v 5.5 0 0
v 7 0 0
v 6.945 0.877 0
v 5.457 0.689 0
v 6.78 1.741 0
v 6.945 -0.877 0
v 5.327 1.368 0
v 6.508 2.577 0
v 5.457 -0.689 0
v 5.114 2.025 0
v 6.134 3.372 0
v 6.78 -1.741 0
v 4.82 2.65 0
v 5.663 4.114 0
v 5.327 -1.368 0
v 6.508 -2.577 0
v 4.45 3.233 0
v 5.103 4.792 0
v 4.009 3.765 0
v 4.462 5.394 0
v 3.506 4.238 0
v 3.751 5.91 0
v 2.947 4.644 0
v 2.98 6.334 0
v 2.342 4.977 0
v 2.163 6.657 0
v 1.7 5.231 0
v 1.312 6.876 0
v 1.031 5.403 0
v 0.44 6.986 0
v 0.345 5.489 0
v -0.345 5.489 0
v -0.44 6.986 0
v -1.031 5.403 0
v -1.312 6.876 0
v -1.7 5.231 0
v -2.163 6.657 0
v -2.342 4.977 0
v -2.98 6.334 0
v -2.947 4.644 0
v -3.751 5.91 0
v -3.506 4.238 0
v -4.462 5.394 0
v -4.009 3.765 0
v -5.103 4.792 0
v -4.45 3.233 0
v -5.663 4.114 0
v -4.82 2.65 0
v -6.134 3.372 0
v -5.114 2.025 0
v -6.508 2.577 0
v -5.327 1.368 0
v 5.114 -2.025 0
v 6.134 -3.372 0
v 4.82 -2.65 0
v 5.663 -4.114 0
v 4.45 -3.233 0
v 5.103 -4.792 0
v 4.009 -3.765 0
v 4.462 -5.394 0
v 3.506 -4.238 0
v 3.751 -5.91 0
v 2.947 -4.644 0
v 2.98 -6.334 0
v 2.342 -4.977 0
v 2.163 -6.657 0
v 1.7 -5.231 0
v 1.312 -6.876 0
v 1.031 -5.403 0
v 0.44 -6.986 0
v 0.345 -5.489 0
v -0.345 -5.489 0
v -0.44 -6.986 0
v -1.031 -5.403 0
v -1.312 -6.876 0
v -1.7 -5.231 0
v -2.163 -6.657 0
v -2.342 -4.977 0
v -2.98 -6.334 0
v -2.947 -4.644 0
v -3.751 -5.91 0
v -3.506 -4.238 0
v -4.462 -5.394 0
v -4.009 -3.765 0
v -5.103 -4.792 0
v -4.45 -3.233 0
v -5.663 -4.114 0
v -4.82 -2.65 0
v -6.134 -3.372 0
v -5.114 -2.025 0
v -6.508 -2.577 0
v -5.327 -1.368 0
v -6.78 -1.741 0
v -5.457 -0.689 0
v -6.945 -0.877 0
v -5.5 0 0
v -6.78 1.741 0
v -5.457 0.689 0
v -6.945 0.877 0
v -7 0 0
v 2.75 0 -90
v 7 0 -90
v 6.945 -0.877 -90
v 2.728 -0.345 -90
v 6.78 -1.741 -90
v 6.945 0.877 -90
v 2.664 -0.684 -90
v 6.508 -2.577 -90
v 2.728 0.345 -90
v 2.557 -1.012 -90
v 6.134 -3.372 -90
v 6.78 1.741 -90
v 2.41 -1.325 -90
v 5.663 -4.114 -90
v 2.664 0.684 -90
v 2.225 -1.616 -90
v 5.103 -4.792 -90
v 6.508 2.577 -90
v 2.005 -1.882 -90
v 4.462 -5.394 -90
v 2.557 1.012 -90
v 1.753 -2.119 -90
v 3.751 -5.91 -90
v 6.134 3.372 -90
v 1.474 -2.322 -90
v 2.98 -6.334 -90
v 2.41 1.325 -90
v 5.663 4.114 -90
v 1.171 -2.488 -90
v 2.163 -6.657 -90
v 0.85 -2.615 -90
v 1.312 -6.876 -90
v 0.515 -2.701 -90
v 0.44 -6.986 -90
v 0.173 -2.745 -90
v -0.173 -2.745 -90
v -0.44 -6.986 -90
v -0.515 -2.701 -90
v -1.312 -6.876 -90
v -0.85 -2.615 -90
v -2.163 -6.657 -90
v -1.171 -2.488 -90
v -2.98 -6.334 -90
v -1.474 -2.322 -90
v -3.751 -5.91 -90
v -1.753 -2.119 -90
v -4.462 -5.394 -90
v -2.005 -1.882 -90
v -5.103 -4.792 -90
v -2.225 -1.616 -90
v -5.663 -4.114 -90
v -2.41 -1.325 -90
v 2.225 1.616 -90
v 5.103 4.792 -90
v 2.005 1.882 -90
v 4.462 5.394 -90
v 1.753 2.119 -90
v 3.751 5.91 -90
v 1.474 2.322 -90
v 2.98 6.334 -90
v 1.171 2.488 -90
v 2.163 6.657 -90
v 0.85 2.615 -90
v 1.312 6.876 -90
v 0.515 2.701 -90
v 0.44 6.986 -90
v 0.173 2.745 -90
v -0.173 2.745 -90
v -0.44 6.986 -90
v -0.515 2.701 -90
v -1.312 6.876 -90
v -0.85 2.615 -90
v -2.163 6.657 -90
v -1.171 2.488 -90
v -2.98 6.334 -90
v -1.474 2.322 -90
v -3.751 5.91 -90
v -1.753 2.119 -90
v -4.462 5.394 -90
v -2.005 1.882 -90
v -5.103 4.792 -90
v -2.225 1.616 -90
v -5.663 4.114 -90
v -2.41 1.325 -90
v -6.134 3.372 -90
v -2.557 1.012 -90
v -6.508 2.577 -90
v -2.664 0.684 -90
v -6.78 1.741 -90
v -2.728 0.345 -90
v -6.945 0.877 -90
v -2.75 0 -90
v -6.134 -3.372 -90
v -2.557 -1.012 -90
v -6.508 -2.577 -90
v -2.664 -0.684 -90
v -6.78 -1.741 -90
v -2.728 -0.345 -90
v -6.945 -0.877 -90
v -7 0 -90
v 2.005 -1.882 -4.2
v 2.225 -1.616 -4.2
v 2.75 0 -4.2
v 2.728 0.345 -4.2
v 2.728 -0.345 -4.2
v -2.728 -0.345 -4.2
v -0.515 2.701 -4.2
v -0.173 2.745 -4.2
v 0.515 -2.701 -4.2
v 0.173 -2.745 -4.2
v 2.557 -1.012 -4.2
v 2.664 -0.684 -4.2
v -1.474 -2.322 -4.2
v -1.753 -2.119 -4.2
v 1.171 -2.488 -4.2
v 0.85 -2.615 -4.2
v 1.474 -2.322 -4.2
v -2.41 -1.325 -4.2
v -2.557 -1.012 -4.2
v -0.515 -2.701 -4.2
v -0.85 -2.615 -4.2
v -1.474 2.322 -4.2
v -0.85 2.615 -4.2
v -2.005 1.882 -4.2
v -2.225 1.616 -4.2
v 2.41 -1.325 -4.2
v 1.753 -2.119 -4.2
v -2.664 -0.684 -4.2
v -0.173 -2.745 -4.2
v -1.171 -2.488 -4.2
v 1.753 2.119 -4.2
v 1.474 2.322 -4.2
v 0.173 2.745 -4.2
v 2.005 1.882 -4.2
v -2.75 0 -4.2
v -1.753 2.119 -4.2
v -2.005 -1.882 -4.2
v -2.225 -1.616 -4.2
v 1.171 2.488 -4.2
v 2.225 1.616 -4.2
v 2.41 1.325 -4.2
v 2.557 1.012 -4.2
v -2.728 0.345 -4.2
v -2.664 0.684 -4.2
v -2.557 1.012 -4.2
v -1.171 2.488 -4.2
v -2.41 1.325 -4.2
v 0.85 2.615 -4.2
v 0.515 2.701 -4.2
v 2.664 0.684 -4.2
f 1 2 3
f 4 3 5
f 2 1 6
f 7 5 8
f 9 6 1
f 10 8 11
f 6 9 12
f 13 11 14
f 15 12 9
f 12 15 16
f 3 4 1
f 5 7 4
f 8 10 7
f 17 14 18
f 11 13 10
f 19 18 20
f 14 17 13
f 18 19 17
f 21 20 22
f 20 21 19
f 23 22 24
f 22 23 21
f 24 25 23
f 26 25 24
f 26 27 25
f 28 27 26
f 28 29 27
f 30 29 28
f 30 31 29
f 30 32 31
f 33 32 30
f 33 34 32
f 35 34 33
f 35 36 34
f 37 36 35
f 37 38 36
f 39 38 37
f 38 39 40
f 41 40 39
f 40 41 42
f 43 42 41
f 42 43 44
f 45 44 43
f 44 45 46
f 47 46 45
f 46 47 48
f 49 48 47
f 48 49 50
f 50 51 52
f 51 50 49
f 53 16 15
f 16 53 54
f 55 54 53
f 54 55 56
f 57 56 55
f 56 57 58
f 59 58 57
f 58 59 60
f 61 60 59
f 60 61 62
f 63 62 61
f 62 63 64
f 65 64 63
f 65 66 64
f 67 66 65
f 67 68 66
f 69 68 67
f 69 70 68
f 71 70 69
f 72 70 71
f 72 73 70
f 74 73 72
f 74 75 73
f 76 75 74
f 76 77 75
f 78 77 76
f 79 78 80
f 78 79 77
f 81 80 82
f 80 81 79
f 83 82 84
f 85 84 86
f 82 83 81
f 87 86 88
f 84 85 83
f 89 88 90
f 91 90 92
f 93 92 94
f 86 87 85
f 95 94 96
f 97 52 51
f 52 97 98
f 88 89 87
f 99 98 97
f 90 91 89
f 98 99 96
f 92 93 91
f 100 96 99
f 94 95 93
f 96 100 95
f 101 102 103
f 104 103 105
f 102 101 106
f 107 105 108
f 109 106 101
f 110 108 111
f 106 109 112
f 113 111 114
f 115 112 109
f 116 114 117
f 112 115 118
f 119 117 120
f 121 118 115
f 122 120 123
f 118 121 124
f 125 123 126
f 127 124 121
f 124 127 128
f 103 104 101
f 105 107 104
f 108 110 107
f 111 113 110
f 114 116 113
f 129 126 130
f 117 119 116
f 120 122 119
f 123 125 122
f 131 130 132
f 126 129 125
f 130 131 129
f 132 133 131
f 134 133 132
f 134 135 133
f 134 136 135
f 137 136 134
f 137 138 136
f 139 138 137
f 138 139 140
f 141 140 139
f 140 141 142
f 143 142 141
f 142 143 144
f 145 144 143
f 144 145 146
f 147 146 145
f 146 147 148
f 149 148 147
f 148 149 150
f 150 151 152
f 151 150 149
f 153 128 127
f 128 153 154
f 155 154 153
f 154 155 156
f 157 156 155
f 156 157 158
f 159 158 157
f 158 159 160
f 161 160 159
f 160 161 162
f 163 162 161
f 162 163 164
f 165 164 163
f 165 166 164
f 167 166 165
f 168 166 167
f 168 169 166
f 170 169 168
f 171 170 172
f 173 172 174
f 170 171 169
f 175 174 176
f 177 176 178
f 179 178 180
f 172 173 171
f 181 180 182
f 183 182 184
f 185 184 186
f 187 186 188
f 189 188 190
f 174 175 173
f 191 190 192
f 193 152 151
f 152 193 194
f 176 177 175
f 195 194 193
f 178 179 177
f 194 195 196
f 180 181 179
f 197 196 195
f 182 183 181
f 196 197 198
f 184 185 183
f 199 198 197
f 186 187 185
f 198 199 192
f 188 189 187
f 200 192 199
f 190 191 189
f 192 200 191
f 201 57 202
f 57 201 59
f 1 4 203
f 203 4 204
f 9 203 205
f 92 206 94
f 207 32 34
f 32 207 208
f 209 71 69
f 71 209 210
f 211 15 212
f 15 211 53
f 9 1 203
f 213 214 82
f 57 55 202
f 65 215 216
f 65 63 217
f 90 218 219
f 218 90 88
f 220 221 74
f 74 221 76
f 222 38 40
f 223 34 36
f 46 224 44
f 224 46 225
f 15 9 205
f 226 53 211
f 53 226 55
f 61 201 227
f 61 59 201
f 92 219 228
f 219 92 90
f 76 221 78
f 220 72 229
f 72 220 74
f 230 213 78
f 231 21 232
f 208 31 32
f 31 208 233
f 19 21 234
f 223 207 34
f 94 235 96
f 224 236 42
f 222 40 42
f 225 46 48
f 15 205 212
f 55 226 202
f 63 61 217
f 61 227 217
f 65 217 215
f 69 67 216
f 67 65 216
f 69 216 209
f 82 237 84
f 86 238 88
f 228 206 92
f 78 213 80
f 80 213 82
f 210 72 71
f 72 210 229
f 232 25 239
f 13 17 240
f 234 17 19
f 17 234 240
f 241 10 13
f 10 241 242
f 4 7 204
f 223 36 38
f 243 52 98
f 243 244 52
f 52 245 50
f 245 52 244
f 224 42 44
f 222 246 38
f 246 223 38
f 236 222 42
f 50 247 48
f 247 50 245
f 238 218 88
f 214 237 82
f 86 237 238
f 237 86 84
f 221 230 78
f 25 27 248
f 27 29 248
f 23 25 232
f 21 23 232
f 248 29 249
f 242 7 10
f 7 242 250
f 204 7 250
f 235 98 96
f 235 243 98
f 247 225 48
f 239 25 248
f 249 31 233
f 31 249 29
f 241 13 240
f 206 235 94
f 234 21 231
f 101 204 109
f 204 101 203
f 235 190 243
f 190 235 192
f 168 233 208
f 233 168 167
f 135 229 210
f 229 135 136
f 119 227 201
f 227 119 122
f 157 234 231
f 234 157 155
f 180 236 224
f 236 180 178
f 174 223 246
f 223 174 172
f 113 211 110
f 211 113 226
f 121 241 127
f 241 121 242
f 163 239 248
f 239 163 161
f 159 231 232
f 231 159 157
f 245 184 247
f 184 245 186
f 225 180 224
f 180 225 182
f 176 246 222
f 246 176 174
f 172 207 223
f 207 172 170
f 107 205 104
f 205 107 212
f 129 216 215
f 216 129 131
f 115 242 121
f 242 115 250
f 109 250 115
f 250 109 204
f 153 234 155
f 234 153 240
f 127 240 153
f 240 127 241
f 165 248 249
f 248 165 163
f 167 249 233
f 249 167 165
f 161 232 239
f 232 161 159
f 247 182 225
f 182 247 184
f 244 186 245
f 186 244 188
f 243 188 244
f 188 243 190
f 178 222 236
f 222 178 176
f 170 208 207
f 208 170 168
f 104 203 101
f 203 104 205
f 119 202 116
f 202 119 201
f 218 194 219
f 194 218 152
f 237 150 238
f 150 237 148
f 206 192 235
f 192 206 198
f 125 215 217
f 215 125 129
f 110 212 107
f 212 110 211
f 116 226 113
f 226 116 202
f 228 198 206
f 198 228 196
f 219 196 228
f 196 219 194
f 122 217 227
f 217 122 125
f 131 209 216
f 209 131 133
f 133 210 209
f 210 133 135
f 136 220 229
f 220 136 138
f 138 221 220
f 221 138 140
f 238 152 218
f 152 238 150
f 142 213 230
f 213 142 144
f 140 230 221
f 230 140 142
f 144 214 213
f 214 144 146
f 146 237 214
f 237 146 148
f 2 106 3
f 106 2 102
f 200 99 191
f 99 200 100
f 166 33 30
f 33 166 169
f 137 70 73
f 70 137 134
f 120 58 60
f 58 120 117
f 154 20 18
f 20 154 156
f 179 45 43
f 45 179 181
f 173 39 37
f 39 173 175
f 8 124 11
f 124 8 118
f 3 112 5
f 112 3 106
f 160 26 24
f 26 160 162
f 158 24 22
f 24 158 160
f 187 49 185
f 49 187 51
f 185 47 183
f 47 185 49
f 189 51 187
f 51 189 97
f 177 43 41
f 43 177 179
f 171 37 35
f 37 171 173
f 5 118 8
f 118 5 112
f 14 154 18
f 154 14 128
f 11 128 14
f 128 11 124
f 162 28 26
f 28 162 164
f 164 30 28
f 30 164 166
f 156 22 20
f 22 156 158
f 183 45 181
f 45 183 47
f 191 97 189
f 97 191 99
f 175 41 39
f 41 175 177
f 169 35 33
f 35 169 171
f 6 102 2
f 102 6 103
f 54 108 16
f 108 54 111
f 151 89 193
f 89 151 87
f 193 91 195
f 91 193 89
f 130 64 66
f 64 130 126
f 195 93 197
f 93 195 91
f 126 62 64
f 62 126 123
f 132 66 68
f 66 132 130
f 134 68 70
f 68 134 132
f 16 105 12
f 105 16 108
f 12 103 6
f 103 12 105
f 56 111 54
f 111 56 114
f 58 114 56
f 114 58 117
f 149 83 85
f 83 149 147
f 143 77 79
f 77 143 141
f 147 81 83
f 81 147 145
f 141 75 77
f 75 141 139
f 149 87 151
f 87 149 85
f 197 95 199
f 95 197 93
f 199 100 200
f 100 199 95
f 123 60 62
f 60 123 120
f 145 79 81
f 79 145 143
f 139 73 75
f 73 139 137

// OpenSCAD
$fn = 50;


difference() {
	union() {
		translate(v = [0, 0, -90.0000000000]) {
			cylinder(h = 90, r = 7.0000000000);
		}
		cylinder(h = 0, r = 17.0000000000);
	}
	union() {
		translate(v = [0, 0, 0]) {
			rotate(a = [0, 0, 0]) {
				difference() {
					union() {
						#translate(v = [0, 0, -90.0000000000]) {
							cylinder(h = 90, r = 2.2500000000);
						}
						#translate(v = [0, 0, -4.2000000000]) {
							cylinder(h = 4.2000000000, r1 = 2.7500000000, r2 = 5.5000000000);
						}
						#translate(v = [0, 0, -90.0000000000]) {
							cylinder(h = 90, r = 2.7500000000);
						}
						#translate(v = [0, 0, -90.0000000000]) {
							cylinder(h = 90, r = 2.2500000000);
						}
					}
					union();
				}
			}
		}
	}
}
